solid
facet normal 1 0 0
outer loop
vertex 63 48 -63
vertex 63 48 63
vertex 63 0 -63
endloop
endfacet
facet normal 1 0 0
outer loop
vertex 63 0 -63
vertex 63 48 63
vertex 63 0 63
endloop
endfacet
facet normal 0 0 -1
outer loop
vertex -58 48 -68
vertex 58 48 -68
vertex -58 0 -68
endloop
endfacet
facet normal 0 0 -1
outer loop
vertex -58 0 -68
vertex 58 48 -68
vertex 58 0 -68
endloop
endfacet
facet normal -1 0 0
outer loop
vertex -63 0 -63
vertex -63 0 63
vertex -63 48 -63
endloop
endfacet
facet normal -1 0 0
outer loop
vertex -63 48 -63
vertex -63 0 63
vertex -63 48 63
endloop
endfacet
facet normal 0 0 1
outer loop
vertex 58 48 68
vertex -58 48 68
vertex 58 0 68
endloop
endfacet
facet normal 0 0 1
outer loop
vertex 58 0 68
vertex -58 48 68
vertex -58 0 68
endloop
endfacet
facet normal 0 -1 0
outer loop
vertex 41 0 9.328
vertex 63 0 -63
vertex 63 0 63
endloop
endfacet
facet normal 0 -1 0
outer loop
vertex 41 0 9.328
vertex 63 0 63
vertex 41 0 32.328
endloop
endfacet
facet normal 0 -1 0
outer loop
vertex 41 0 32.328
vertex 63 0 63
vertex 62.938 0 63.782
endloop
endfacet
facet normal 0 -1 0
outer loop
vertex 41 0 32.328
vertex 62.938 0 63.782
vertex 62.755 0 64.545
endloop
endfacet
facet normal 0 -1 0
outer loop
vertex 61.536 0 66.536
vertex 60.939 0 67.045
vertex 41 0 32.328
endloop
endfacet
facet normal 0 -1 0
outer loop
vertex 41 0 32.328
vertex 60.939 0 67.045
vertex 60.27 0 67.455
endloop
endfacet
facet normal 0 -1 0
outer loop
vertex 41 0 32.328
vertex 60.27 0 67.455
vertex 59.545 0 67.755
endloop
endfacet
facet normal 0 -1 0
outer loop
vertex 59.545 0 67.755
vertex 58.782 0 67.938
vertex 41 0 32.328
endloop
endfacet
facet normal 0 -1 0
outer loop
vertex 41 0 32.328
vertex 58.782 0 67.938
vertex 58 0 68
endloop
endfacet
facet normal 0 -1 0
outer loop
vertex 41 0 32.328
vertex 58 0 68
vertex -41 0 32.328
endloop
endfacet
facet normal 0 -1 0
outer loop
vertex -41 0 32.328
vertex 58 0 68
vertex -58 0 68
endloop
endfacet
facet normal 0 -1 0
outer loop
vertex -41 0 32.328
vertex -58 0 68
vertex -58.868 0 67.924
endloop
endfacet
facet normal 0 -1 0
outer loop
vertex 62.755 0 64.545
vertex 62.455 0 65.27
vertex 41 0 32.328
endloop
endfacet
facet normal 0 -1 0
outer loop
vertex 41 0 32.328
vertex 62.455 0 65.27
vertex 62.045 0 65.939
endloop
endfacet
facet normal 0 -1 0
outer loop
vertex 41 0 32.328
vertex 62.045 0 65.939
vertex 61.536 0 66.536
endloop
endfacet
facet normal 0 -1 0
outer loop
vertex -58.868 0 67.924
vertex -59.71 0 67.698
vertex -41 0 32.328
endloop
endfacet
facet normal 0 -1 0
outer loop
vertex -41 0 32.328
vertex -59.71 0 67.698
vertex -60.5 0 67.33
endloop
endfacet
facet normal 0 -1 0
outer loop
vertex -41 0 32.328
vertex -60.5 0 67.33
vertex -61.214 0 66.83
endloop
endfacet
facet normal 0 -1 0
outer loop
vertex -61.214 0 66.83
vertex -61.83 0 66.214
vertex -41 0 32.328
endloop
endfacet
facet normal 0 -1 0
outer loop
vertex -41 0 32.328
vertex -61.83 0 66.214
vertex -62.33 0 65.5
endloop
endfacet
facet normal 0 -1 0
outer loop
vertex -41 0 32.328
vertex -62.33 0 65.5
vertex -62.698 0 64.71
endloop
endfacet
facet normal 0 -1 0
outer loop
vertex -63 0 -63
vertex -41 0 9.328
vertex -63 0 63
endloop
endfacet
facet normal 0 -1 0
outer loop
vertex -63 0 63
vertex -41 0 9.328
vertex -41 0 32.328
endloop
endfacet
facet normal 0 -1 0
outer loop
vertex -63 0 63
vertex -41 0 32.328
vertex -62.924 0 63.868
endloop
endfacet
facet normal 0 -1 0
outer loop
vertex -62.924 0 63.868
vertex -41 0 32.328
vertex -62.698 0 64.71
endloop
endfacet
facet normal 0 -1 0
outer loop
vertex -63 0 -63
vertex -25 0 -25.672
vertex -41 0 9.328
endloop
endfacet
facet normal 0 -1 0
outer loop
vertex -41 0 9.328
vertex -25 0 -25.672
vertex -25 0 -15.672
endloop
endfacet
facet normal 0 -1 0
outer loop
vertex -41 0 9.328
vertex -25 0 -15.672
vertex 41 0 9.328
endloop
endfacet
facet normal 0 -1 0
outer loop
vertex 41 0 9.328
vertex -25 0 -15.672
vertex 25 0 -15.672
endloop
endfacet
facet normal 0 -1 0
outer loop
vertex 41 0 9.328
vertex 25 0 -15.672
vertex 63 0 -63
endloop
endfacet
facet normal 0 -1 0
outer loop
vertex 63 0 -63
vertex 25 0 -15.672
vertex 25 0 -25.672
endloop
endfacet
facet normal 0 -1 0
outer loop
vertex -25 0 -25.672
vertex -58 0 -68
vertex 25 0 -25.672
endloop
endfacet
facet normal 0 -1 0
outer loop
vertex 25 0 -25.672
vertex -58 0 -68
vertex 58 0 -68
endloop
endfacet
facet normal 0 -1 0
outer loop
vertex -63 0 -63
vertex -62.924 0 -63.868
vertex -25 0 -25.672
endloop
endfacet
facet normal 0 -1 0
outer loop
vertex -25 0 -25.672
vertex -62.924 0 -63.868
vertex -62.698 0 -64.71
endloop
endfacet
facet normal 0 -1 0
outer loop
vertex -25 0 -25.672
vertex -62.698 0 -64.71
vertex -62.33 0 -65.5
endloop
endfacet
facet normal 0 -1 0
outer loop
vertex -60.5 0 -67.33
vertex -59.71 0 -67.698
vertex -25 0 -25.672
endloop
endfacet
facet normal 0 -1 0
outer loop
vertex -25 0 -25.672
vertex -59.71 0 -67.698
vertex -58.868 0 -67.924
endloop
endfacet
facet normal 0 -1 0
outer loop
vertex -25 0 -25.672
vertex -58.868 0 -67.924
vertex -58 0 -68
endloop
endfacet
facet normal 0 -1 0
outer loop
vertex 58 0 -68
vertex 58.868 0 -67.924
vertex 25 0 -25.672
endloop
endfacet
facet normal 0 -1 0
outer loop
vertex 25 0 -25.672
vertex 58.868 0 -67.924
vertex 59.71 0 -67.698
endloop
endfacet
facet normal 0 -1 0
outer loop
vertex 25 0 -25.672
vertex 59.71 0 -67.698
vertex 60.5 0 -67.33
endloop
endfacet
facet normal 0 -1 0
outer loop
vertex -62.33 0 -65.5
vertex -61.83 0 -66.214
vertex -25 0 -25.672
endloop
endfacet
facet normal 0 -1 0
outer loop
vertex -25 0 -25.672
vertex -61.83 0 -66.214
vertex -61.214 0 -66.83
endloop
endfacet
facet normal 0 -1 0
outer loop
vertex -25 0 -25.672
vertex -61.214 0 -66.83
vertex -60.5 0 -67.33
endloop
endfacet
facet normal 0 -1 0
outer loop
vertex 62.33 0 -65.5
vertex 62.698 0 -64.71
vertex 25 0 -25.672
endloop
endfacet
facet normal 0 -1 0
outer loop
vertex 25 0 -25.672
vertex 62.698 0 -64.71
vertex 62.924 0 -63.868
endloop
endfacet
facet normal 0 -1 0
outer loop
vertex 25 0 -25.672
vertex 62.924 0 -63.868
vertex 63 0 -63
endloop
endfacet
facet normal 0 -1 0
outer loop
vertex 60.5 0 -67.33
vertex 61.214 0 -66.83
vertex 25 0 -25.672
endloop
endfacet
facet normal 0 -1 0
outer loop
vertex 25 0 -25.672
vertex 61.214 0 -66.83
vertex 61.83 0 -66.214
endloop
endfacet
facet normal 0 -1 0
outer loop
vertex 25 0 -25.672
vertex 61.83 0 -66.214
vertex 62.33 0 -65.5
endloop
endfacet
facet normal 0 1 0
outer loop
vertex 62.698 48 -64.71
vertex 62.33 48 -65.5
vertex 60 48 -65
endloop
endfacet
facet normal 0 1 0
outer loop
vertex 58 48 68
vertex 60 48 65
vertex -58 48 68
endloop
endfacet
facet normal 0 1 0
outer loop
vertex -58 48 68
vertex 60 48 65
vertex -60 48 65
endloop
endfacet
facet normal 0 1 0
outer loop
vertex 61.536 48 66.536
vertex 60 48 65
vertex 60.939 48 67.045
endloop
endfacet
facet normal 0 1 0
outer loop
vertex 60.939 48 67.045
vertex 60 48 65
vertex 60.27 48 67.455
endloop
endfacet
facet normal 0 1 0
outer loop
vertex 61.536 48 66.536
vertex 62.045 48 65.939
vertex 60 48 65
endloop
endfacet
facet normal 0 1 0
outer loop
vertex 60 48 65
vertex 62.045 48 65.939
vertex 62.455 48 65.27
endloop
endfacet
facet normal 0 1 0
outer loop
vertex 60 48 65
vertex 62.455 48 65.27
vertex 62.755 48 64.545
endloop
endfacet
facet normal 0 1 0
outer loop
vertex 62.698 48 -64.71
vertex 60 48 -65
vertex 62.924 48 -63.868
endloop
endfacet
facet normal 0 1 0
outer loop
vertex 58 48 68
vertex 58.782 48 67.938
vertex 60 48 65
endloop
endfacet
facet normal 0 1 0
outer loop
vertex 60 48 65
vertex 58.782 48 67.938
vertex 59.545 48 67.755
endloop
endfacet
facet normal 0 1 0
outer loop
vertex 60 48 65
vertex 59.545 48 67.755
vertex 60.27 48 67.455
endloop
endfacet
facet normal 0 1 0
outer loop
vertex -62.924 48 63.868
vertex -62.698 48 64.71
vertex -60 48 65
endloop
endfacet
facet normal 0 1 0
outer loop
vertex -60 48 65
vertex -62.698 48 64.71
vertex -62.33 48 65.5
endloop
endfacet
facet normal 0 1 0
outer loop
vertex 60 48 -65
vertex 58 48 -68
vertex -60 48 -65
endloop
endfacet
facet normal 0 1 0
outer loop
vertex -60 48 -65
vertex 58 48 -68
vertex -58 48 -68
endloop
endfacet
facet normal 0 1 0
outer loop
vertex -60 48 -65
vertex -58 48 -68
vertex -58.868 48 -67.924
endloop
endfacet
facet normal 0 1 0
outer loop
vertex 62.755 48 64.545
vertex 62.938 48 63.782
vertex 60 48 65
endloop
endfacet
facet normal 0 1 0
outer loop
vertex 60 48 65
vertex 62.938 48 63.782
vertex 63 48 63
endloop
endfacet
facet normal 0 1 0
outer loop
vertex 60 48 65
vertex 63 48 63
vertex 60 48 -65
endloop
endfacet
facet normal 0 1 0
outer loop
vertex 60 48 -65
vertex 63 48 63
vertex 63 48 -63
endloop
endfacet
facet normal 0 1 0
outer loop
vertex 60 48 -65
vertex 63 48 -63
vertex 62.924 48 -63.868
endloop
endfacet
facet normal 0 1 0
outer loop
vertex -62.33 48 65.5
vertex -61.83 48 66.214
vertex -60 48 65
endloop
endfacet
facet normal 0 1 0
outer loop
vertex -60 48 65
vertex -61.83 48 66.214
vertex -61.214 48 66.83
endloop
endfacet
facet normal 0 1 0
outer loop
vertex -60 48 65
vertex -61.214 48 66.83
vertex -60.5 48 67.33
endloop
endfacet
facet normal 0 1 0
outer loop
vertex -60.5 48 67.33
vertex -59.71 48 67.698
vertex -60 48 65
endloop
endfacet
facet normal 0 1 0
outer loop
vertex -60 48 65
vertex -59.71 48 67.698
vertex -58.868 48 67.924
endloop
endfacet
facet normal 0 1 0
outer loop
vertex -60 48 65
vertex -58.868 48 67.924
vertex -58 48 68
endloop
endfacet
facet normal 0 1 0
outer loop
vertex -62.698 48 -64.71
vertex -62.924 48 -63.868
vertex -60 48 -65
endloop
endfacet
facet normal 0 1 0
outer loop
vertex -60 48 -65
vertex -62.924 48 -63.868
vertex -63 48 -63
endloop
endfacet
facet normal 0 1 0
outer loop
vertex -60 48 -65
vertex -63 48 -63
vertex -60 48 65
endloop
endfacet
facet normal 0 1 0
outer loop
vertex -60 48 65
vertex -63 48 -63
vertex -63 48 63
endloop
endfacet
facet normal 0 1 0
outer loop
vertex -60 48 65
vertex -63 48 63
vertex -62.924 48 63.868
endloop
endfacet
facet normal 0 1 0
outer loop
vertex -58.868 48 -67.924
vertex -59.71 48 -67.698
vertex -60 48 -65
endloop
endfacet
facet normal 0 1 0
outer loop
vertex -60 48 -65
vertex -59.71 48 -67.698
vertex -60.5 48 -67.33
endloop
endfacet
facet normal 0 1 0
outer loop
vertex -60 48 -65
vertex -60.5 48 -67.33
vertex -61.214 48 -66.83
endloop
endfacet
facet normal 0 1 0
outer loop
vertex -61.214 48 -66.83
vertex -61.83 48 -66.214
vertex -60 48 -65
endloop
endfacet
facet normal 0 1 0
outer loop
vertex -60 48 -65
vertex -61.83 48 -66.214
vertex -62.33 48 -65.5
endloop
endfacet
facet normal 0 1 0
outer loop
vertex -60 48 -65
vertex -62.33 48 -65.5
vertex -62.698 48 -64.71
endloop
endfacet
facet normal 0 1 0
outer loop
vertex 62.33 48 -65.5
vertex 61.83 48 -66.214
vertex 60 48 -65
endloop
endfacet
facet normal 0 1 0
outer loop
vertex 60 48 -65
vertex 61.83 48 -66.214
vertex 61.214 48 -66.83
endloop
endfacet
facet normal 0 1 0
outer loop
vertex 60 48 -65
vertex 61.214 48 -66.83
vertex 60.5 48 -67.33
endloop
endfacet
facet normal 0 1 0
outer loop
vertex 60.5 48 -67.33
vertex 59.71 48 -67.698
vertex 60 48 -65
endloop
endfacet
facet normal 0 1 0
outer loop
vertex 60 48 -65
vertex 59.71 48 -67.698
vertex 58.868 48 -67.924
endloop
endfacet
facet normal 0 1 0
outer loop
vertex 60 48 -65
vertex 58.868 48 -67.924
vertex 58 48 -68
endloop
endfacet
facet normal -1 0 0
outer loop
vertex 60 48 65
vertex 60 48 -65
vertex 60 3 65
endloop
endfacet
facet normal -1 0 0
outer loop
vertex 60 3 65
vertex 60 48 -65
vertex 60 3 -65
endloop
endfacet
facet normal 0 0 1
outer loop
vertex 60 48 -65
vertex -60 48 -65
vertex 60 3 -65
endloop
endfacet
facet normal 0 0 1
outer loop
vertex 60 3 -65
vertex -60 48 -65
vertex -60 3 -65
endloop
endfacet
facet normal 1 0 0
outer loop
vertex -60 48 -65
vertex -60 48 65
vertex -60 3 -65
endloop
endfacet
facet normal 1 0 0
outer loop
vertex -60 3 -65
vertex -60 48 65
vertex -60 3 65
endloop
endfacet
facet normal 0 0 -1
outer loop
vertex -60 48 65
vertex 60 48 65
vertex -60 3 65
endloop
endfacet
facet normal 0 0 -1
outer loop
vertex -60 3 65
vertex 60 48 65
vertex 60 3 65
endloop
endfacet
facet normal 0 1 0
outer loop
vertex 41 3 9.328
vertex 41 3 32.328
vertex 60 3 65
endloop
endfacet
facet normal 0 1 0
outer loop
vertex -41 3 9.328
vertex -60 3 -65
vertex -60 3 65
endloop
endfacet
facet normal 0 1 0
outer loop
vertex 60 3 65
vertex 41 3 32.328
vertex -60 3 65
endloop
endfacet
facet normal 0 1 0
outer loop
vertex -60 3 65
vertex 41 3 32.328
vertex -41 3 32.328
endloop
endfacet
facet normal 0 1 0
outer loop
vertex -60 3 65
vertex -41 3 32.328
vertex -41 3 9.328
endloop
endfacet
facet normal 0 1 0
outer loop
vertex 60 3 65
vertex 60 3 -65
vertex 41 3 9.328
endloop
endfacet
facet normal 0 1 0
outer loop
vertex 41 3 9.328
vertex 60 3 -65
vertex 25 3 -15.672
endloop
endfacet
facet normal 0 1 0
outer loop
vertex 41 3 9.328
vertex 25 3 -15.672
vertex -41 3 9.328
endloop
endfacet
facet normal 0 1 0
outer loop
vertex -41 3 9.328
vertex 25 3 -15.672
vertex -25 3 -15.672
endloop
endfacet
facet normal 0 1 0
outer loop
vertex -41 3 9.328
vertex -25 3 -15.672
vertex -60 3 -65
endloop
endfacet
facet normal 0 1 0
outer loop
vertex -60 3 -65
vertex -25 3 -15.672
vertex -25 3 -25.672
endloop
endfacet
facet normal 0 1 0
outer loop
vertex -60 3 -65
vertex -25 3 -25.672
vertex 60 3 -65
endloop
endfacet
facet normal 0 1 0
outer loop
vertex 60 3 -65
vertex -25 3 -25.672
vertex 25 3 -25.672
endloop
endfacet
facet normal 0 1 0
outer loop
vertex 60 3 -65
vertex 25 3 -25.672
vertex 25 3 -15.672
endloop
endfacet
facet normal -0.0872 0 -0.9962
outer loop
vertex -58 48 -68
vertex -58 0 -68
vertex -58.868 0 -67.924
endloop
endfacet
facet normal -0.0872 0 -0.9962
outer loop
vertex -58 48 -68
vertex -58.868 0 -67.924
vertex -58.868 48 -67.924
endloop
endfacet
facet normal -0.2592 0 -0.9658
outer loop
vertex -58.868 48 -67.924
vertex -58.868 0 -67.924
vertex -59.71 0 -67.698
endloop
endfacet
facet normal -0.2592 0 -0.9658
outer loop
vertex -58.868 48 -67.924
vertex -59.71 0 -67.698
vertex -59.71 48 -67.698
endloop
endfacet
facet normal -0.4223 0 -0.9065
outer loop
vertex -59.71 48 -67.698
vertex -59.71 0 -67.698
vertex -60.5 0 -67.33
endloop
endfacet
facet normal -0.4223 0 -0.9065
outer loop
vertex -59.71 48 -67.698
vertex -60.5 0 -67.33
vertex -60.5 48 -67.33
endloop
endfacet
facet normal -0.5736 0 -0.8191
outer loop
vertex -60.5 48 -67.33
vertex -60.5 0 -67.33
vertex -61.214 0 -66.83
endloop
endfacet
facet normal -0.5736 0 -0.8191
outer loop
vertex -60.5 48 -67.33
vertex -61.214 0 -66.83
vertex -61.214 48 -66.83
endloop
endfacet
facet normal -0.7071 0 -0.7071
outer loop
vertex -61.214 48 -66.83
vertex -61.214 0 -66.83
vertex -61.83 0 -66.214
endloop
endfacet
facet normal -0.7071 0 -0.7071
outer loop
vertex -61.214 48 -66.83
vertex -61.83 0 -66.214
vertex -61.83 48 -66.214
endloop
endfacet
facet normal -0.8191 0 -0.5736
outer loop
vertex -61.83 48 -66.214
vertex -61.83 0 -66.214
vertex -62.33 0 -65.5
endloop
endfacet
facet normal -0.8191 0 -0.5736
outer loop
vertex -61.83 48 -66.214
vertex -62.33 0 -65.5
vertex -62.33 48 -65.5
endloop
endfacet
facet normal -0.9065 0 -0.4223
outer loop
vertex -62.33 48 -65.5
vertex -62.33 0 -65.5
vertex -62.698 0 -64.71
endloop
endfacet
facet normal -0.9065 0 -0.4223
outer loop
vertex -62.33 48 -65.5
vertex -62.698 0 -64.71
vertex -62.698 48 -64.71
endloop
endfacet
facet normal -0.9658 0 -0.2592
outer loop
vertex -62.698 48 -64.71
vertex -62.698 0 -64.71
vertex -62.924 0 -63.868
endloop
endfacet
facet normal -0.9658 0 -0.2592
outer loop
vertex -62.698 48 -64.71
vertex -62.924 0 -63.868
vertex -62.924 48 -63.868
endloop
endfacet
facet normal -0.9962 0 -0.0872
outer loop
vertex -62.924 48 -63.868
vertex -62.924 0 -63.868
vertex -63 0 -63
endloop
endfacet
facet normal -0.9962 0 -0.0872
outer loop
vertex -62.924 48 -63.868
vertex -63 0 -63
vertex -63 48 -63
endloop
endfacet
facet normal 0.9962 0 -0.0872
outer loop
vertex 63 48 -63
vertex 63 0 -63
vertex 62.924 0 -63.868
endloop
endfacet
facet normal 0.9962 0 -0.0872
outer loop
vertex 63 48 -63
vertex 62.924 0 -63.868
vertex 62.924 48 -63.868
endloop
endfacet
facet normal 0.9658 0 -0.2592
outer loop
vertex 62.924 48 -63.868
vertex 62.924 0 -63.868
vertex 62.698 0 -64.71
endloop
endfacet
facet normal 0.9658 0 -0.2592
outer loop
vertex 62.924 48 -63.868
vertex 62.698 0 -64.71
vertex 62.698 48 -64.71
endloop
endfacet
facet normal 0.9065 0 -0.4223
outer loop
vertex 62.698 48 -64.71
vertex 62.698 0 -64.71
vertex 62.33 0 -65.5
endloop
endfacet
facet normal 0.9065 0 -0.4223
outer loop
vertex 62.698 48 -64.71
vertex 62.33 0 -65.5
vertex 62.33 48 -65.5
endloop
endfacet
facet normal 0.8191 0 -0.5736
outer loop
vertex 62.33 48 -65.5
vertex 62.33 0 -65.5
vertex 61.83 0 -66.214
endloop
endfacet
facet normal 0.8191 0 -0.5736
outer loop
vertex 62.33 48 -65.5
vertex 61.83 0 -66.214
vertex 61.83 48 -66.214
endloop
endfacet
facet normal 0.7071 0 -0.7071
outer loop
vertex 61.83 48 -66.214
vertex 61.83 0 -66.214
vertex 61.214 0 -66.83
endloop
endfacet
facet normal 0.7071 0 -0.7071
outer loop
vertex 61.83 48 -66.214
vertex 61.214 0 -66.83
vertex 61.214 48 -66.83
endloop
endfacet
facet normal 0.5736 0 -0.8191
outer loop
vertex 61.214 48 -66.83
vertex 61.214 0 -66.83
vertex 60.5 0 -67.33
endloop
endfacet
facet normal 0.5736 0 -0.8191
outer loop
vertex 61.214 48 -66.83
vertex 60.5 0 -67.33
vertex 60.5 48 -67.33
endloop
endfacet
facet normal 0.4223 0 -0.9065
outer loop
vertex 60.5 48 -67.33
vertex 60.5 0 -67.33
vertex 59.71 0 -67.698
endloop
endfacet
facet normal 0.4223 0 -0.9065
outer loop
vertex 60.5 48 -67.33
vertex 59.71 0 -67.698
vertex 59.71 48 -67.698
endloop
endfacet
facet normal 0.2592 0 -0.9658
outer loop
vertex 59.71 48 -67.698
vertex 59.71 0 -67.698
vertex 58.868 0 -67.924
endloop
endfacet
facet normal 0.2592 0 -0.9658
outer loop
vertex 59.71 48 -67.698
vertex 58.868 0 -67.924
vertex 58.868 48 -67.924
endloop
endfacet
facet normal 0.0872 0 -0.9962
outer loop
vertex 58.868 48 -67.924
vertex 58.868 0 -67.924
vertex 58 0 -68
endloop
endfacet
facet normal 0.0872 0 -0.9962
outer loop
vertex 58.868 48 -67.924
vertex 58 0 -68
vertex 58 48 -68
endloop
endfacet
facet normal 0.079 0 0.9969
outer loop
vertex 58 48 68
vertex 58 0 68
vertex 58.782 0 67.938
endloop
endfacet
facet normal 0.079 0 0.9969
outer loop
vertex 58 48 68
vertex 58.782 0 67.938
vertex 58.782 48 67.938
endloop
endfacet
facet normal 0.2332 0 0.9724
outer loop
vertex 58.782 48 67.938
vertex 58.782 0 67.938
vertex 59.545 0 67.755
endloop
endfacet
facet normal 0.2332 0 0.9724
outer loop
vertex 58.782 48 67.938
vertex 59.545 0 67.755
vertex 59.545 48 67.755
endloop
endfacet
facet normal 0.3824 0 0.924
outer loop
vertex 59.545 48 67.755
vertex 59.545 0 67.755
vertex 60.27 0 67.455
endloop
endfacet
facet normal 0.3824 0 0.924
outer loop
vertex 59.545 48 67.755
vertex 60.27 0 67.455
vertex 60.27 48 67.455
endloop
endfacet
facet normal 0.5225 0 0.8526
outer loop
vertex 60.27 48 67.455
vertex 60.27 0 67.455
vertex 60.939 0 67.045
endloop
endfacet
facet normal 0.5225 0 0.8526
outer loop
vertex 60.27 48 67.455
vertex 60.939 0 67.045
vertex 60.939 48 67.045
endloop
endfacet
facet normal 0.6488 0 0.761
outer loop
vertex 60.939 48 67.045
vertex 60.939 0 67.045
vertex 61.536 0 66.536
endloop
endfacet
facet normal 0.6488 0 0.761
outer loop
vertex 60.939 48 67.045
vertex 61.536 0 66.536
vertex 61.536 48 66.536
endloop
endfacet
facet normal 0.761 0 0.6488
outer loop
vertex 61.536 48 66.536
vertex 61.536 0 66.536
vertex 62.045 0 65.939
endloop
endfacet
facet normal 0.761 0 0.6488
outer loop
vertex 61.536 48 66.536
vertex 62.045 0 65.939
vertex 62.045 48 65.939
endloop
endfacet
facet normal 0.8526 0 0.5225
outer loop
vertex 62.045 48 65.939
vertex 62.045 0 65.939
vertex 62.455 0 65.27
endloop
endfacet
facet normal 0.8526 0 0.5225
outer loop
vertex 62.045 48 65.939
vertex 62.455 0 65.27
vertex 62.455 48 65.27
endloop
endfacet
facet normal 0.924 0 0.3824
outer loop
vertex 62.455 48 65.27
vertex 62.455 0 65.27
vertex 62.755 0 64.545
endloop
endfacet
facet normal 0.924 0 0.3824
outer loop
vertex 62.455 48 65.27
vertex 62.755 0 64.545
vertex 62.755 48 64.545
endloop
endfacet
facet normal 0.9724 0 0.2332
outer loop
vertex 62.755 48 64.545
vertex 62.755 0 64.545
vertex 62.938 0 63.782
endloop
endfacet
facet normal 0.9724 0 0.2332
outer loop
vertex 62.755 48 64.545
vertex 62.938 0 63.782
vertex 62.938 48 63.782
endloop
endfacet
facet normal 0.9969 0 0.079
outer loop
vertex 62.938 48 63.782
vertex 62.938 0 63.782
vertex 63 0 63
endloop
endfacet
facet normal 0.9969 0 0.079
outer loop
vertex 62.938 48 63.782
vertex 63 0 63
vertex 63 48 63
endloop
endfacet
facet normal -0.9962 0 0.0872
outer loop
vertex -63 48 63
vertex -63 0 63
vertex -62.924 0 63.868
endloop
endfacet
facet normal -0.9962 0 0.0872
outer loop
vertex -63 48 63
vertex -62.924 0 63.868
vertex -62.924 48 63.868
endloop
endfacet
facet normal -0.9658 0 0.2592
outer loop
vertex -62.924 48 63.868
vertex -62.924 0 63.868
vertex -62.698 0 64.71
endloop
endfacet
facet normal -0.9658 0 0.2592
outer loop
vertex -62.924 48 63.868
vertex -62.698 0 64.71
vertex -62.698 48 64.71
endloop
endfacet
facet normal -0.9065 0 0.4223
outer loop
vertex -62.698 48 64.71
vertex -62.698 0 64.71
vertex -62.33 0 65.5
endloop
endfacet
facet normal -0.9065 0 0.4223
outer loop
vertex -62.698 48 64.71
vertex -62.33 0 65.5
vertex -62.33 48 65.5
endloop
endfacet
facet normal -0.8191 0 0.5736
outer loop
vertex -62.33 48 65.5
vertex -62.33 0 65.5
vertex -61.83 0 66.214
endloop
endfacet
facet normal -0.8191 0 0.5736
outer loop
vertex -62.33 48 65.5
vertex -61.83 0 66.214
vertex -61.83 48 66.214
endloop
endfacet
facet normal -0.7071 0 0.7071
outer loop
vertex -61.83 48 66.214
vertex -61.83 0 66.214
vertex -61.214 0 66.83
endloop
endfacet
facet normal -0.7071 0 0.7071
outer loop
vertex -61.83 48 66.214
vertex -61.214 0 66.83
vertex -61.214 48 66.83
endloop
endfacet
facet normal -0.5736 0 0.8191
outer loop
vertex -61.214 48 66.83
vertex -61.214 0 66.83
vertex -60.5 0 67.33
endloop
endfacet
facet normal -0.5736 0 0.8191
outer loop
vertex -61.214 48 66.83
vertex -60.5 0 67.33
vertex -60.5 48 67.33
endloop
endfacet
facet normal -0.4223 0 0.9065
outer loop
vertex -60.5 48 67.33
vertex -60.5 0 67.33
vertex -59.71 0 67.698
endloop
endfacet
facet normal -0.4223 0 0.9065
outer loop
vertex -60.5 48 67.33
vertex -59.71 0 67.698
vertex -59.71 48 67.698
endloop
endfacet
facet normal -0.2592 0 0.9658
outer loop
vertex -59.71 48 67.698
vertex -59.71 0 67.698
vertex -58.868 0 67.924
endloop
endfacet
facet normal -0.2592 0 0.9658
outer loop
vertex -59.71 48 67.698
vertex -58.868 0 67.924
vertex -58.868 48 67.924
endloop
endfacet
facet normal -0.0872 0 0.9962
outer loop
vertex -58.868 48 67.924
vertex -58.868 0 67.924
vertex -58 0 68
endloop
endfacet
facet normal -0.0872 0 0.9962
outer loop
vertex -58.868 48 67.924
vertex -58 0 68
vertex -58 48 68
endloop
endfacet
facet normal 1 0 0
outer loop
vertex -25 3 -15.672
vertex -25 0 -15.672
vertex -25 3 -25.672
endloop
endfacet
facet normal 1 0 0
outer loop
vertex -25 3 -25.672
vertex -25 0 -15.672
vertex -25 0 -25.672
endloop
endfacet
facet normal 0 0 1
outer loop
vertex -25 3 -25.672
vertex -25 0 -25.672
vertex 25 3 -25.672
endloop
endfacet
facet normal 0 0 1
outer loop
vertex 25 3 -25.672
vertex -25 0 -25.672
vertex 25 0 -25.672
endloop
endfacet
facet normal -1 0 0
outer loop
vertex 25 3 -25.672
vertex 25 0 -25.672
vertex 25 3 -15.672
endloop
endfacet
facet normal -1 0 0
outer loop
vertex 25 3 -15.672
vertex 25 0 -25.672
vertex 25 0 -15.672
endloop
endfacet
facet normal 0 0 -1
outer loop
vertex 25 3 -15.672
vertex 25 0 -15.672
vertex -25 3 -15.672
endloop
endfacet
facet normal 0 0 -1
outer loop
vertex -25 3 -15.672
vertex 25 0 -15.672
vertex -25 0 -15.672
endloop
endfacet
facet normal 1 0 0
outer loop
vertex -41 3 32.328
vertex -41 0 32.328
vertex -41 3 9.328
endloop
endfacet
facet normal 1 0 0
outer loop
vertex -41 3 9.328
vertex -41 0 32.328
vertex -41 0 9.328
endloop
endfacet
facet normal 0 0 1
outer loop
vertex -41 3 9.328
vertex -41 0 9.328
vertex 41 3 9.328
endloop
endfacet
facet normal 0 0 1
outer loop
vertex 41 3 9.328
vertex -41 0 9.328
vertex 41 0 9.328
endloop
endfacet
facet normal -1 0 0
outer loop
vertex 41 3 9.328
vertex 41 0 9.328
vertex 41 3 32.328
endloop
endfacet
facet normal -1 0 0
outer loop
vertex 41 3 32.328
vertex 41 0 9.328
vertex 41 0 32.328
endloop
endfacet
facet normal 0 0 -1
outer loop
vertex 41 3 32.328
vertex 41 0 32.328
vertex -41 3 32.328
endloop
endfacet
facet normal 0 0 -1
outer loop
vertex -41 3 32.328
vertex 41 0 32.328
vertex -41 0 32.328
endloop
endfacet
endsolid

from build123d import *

# Parameters (mm, degrees)
SKETCH1_W           = 126
SKETCH1_H           = 136
BOSS_EXTRUDE1_DEPTH = 3
SKETCH2_W           = 126
SKETCH2_H           = 136
SKETCH2_W_2         = 120
SKETCH2_H_2         = 130
BOSS_EXTRUDE2_DEPTH = 45
FILLET1_R           = 5
SKETCH4_W           = 82
SKETCH4_H           = 23
SKETCH4_W_2         = 50
SKETCH4_H_2         = 10
CUT_EXTRUDE1_DEPTH  = 10


with BuildPart() as part:
    # Sketch1 → Boss-Extrude1 (new body)
    with BuildSketch(Plane(origin=(0, 0, 0), x_dir=(1, 0, 0), z_dir=(0, 1, 0))):
        Rectangle(SKETCH1_W, SKETCH1_H)
    extrude(amount=BOSS_EXTRUDE1_DEPTH)

    # Sketch2 → Boss-Extrude2 (add)
    with BuildSketch(Plane(origin=(0, 3, 0), x_dir=(1, 0, 0), z_dir=(0, 1, 0))):
        Rectangle(SKETCH2_W, SKETCH2_H)
        Rectangle(SKETCH2_W_2, SKETCH2_H_2, mode=Mode.SUBTRACT)
    extrude(amount=BOSS_EXTRUDE2_DEPTH)

    # Fillet1
    fillet1_edges = [part.edges().sort_by_distance(p)[0] for p in [
        (63, 24, 68),
        (-63, 24, 68),
        (-63, 24, -68),
        (63, 24, -68),
    ]]
    fillet(fillet1_edges, radius=FILLET1_R)

    # Sketch4 → Cut-Extrude1 (cut)
    with BuildSketch(Plane(origin=(0, 3, 0), x_dir=(1, 0, 0), z_dir=(0, 1, 0))):
        with Locations((0, -20.828487482)):
            Rectangle(SKETCH4_W, SKETCH4_H)
        with Locations((0, 20.671512518)):
            Rectangle(SKETCH4_W_2, SKETCH4_H_2)
    extrude(amount=-CUT_EXTRUDE1_DEPTH, mode=Mode.SUBTRACT)


solid = part.part
